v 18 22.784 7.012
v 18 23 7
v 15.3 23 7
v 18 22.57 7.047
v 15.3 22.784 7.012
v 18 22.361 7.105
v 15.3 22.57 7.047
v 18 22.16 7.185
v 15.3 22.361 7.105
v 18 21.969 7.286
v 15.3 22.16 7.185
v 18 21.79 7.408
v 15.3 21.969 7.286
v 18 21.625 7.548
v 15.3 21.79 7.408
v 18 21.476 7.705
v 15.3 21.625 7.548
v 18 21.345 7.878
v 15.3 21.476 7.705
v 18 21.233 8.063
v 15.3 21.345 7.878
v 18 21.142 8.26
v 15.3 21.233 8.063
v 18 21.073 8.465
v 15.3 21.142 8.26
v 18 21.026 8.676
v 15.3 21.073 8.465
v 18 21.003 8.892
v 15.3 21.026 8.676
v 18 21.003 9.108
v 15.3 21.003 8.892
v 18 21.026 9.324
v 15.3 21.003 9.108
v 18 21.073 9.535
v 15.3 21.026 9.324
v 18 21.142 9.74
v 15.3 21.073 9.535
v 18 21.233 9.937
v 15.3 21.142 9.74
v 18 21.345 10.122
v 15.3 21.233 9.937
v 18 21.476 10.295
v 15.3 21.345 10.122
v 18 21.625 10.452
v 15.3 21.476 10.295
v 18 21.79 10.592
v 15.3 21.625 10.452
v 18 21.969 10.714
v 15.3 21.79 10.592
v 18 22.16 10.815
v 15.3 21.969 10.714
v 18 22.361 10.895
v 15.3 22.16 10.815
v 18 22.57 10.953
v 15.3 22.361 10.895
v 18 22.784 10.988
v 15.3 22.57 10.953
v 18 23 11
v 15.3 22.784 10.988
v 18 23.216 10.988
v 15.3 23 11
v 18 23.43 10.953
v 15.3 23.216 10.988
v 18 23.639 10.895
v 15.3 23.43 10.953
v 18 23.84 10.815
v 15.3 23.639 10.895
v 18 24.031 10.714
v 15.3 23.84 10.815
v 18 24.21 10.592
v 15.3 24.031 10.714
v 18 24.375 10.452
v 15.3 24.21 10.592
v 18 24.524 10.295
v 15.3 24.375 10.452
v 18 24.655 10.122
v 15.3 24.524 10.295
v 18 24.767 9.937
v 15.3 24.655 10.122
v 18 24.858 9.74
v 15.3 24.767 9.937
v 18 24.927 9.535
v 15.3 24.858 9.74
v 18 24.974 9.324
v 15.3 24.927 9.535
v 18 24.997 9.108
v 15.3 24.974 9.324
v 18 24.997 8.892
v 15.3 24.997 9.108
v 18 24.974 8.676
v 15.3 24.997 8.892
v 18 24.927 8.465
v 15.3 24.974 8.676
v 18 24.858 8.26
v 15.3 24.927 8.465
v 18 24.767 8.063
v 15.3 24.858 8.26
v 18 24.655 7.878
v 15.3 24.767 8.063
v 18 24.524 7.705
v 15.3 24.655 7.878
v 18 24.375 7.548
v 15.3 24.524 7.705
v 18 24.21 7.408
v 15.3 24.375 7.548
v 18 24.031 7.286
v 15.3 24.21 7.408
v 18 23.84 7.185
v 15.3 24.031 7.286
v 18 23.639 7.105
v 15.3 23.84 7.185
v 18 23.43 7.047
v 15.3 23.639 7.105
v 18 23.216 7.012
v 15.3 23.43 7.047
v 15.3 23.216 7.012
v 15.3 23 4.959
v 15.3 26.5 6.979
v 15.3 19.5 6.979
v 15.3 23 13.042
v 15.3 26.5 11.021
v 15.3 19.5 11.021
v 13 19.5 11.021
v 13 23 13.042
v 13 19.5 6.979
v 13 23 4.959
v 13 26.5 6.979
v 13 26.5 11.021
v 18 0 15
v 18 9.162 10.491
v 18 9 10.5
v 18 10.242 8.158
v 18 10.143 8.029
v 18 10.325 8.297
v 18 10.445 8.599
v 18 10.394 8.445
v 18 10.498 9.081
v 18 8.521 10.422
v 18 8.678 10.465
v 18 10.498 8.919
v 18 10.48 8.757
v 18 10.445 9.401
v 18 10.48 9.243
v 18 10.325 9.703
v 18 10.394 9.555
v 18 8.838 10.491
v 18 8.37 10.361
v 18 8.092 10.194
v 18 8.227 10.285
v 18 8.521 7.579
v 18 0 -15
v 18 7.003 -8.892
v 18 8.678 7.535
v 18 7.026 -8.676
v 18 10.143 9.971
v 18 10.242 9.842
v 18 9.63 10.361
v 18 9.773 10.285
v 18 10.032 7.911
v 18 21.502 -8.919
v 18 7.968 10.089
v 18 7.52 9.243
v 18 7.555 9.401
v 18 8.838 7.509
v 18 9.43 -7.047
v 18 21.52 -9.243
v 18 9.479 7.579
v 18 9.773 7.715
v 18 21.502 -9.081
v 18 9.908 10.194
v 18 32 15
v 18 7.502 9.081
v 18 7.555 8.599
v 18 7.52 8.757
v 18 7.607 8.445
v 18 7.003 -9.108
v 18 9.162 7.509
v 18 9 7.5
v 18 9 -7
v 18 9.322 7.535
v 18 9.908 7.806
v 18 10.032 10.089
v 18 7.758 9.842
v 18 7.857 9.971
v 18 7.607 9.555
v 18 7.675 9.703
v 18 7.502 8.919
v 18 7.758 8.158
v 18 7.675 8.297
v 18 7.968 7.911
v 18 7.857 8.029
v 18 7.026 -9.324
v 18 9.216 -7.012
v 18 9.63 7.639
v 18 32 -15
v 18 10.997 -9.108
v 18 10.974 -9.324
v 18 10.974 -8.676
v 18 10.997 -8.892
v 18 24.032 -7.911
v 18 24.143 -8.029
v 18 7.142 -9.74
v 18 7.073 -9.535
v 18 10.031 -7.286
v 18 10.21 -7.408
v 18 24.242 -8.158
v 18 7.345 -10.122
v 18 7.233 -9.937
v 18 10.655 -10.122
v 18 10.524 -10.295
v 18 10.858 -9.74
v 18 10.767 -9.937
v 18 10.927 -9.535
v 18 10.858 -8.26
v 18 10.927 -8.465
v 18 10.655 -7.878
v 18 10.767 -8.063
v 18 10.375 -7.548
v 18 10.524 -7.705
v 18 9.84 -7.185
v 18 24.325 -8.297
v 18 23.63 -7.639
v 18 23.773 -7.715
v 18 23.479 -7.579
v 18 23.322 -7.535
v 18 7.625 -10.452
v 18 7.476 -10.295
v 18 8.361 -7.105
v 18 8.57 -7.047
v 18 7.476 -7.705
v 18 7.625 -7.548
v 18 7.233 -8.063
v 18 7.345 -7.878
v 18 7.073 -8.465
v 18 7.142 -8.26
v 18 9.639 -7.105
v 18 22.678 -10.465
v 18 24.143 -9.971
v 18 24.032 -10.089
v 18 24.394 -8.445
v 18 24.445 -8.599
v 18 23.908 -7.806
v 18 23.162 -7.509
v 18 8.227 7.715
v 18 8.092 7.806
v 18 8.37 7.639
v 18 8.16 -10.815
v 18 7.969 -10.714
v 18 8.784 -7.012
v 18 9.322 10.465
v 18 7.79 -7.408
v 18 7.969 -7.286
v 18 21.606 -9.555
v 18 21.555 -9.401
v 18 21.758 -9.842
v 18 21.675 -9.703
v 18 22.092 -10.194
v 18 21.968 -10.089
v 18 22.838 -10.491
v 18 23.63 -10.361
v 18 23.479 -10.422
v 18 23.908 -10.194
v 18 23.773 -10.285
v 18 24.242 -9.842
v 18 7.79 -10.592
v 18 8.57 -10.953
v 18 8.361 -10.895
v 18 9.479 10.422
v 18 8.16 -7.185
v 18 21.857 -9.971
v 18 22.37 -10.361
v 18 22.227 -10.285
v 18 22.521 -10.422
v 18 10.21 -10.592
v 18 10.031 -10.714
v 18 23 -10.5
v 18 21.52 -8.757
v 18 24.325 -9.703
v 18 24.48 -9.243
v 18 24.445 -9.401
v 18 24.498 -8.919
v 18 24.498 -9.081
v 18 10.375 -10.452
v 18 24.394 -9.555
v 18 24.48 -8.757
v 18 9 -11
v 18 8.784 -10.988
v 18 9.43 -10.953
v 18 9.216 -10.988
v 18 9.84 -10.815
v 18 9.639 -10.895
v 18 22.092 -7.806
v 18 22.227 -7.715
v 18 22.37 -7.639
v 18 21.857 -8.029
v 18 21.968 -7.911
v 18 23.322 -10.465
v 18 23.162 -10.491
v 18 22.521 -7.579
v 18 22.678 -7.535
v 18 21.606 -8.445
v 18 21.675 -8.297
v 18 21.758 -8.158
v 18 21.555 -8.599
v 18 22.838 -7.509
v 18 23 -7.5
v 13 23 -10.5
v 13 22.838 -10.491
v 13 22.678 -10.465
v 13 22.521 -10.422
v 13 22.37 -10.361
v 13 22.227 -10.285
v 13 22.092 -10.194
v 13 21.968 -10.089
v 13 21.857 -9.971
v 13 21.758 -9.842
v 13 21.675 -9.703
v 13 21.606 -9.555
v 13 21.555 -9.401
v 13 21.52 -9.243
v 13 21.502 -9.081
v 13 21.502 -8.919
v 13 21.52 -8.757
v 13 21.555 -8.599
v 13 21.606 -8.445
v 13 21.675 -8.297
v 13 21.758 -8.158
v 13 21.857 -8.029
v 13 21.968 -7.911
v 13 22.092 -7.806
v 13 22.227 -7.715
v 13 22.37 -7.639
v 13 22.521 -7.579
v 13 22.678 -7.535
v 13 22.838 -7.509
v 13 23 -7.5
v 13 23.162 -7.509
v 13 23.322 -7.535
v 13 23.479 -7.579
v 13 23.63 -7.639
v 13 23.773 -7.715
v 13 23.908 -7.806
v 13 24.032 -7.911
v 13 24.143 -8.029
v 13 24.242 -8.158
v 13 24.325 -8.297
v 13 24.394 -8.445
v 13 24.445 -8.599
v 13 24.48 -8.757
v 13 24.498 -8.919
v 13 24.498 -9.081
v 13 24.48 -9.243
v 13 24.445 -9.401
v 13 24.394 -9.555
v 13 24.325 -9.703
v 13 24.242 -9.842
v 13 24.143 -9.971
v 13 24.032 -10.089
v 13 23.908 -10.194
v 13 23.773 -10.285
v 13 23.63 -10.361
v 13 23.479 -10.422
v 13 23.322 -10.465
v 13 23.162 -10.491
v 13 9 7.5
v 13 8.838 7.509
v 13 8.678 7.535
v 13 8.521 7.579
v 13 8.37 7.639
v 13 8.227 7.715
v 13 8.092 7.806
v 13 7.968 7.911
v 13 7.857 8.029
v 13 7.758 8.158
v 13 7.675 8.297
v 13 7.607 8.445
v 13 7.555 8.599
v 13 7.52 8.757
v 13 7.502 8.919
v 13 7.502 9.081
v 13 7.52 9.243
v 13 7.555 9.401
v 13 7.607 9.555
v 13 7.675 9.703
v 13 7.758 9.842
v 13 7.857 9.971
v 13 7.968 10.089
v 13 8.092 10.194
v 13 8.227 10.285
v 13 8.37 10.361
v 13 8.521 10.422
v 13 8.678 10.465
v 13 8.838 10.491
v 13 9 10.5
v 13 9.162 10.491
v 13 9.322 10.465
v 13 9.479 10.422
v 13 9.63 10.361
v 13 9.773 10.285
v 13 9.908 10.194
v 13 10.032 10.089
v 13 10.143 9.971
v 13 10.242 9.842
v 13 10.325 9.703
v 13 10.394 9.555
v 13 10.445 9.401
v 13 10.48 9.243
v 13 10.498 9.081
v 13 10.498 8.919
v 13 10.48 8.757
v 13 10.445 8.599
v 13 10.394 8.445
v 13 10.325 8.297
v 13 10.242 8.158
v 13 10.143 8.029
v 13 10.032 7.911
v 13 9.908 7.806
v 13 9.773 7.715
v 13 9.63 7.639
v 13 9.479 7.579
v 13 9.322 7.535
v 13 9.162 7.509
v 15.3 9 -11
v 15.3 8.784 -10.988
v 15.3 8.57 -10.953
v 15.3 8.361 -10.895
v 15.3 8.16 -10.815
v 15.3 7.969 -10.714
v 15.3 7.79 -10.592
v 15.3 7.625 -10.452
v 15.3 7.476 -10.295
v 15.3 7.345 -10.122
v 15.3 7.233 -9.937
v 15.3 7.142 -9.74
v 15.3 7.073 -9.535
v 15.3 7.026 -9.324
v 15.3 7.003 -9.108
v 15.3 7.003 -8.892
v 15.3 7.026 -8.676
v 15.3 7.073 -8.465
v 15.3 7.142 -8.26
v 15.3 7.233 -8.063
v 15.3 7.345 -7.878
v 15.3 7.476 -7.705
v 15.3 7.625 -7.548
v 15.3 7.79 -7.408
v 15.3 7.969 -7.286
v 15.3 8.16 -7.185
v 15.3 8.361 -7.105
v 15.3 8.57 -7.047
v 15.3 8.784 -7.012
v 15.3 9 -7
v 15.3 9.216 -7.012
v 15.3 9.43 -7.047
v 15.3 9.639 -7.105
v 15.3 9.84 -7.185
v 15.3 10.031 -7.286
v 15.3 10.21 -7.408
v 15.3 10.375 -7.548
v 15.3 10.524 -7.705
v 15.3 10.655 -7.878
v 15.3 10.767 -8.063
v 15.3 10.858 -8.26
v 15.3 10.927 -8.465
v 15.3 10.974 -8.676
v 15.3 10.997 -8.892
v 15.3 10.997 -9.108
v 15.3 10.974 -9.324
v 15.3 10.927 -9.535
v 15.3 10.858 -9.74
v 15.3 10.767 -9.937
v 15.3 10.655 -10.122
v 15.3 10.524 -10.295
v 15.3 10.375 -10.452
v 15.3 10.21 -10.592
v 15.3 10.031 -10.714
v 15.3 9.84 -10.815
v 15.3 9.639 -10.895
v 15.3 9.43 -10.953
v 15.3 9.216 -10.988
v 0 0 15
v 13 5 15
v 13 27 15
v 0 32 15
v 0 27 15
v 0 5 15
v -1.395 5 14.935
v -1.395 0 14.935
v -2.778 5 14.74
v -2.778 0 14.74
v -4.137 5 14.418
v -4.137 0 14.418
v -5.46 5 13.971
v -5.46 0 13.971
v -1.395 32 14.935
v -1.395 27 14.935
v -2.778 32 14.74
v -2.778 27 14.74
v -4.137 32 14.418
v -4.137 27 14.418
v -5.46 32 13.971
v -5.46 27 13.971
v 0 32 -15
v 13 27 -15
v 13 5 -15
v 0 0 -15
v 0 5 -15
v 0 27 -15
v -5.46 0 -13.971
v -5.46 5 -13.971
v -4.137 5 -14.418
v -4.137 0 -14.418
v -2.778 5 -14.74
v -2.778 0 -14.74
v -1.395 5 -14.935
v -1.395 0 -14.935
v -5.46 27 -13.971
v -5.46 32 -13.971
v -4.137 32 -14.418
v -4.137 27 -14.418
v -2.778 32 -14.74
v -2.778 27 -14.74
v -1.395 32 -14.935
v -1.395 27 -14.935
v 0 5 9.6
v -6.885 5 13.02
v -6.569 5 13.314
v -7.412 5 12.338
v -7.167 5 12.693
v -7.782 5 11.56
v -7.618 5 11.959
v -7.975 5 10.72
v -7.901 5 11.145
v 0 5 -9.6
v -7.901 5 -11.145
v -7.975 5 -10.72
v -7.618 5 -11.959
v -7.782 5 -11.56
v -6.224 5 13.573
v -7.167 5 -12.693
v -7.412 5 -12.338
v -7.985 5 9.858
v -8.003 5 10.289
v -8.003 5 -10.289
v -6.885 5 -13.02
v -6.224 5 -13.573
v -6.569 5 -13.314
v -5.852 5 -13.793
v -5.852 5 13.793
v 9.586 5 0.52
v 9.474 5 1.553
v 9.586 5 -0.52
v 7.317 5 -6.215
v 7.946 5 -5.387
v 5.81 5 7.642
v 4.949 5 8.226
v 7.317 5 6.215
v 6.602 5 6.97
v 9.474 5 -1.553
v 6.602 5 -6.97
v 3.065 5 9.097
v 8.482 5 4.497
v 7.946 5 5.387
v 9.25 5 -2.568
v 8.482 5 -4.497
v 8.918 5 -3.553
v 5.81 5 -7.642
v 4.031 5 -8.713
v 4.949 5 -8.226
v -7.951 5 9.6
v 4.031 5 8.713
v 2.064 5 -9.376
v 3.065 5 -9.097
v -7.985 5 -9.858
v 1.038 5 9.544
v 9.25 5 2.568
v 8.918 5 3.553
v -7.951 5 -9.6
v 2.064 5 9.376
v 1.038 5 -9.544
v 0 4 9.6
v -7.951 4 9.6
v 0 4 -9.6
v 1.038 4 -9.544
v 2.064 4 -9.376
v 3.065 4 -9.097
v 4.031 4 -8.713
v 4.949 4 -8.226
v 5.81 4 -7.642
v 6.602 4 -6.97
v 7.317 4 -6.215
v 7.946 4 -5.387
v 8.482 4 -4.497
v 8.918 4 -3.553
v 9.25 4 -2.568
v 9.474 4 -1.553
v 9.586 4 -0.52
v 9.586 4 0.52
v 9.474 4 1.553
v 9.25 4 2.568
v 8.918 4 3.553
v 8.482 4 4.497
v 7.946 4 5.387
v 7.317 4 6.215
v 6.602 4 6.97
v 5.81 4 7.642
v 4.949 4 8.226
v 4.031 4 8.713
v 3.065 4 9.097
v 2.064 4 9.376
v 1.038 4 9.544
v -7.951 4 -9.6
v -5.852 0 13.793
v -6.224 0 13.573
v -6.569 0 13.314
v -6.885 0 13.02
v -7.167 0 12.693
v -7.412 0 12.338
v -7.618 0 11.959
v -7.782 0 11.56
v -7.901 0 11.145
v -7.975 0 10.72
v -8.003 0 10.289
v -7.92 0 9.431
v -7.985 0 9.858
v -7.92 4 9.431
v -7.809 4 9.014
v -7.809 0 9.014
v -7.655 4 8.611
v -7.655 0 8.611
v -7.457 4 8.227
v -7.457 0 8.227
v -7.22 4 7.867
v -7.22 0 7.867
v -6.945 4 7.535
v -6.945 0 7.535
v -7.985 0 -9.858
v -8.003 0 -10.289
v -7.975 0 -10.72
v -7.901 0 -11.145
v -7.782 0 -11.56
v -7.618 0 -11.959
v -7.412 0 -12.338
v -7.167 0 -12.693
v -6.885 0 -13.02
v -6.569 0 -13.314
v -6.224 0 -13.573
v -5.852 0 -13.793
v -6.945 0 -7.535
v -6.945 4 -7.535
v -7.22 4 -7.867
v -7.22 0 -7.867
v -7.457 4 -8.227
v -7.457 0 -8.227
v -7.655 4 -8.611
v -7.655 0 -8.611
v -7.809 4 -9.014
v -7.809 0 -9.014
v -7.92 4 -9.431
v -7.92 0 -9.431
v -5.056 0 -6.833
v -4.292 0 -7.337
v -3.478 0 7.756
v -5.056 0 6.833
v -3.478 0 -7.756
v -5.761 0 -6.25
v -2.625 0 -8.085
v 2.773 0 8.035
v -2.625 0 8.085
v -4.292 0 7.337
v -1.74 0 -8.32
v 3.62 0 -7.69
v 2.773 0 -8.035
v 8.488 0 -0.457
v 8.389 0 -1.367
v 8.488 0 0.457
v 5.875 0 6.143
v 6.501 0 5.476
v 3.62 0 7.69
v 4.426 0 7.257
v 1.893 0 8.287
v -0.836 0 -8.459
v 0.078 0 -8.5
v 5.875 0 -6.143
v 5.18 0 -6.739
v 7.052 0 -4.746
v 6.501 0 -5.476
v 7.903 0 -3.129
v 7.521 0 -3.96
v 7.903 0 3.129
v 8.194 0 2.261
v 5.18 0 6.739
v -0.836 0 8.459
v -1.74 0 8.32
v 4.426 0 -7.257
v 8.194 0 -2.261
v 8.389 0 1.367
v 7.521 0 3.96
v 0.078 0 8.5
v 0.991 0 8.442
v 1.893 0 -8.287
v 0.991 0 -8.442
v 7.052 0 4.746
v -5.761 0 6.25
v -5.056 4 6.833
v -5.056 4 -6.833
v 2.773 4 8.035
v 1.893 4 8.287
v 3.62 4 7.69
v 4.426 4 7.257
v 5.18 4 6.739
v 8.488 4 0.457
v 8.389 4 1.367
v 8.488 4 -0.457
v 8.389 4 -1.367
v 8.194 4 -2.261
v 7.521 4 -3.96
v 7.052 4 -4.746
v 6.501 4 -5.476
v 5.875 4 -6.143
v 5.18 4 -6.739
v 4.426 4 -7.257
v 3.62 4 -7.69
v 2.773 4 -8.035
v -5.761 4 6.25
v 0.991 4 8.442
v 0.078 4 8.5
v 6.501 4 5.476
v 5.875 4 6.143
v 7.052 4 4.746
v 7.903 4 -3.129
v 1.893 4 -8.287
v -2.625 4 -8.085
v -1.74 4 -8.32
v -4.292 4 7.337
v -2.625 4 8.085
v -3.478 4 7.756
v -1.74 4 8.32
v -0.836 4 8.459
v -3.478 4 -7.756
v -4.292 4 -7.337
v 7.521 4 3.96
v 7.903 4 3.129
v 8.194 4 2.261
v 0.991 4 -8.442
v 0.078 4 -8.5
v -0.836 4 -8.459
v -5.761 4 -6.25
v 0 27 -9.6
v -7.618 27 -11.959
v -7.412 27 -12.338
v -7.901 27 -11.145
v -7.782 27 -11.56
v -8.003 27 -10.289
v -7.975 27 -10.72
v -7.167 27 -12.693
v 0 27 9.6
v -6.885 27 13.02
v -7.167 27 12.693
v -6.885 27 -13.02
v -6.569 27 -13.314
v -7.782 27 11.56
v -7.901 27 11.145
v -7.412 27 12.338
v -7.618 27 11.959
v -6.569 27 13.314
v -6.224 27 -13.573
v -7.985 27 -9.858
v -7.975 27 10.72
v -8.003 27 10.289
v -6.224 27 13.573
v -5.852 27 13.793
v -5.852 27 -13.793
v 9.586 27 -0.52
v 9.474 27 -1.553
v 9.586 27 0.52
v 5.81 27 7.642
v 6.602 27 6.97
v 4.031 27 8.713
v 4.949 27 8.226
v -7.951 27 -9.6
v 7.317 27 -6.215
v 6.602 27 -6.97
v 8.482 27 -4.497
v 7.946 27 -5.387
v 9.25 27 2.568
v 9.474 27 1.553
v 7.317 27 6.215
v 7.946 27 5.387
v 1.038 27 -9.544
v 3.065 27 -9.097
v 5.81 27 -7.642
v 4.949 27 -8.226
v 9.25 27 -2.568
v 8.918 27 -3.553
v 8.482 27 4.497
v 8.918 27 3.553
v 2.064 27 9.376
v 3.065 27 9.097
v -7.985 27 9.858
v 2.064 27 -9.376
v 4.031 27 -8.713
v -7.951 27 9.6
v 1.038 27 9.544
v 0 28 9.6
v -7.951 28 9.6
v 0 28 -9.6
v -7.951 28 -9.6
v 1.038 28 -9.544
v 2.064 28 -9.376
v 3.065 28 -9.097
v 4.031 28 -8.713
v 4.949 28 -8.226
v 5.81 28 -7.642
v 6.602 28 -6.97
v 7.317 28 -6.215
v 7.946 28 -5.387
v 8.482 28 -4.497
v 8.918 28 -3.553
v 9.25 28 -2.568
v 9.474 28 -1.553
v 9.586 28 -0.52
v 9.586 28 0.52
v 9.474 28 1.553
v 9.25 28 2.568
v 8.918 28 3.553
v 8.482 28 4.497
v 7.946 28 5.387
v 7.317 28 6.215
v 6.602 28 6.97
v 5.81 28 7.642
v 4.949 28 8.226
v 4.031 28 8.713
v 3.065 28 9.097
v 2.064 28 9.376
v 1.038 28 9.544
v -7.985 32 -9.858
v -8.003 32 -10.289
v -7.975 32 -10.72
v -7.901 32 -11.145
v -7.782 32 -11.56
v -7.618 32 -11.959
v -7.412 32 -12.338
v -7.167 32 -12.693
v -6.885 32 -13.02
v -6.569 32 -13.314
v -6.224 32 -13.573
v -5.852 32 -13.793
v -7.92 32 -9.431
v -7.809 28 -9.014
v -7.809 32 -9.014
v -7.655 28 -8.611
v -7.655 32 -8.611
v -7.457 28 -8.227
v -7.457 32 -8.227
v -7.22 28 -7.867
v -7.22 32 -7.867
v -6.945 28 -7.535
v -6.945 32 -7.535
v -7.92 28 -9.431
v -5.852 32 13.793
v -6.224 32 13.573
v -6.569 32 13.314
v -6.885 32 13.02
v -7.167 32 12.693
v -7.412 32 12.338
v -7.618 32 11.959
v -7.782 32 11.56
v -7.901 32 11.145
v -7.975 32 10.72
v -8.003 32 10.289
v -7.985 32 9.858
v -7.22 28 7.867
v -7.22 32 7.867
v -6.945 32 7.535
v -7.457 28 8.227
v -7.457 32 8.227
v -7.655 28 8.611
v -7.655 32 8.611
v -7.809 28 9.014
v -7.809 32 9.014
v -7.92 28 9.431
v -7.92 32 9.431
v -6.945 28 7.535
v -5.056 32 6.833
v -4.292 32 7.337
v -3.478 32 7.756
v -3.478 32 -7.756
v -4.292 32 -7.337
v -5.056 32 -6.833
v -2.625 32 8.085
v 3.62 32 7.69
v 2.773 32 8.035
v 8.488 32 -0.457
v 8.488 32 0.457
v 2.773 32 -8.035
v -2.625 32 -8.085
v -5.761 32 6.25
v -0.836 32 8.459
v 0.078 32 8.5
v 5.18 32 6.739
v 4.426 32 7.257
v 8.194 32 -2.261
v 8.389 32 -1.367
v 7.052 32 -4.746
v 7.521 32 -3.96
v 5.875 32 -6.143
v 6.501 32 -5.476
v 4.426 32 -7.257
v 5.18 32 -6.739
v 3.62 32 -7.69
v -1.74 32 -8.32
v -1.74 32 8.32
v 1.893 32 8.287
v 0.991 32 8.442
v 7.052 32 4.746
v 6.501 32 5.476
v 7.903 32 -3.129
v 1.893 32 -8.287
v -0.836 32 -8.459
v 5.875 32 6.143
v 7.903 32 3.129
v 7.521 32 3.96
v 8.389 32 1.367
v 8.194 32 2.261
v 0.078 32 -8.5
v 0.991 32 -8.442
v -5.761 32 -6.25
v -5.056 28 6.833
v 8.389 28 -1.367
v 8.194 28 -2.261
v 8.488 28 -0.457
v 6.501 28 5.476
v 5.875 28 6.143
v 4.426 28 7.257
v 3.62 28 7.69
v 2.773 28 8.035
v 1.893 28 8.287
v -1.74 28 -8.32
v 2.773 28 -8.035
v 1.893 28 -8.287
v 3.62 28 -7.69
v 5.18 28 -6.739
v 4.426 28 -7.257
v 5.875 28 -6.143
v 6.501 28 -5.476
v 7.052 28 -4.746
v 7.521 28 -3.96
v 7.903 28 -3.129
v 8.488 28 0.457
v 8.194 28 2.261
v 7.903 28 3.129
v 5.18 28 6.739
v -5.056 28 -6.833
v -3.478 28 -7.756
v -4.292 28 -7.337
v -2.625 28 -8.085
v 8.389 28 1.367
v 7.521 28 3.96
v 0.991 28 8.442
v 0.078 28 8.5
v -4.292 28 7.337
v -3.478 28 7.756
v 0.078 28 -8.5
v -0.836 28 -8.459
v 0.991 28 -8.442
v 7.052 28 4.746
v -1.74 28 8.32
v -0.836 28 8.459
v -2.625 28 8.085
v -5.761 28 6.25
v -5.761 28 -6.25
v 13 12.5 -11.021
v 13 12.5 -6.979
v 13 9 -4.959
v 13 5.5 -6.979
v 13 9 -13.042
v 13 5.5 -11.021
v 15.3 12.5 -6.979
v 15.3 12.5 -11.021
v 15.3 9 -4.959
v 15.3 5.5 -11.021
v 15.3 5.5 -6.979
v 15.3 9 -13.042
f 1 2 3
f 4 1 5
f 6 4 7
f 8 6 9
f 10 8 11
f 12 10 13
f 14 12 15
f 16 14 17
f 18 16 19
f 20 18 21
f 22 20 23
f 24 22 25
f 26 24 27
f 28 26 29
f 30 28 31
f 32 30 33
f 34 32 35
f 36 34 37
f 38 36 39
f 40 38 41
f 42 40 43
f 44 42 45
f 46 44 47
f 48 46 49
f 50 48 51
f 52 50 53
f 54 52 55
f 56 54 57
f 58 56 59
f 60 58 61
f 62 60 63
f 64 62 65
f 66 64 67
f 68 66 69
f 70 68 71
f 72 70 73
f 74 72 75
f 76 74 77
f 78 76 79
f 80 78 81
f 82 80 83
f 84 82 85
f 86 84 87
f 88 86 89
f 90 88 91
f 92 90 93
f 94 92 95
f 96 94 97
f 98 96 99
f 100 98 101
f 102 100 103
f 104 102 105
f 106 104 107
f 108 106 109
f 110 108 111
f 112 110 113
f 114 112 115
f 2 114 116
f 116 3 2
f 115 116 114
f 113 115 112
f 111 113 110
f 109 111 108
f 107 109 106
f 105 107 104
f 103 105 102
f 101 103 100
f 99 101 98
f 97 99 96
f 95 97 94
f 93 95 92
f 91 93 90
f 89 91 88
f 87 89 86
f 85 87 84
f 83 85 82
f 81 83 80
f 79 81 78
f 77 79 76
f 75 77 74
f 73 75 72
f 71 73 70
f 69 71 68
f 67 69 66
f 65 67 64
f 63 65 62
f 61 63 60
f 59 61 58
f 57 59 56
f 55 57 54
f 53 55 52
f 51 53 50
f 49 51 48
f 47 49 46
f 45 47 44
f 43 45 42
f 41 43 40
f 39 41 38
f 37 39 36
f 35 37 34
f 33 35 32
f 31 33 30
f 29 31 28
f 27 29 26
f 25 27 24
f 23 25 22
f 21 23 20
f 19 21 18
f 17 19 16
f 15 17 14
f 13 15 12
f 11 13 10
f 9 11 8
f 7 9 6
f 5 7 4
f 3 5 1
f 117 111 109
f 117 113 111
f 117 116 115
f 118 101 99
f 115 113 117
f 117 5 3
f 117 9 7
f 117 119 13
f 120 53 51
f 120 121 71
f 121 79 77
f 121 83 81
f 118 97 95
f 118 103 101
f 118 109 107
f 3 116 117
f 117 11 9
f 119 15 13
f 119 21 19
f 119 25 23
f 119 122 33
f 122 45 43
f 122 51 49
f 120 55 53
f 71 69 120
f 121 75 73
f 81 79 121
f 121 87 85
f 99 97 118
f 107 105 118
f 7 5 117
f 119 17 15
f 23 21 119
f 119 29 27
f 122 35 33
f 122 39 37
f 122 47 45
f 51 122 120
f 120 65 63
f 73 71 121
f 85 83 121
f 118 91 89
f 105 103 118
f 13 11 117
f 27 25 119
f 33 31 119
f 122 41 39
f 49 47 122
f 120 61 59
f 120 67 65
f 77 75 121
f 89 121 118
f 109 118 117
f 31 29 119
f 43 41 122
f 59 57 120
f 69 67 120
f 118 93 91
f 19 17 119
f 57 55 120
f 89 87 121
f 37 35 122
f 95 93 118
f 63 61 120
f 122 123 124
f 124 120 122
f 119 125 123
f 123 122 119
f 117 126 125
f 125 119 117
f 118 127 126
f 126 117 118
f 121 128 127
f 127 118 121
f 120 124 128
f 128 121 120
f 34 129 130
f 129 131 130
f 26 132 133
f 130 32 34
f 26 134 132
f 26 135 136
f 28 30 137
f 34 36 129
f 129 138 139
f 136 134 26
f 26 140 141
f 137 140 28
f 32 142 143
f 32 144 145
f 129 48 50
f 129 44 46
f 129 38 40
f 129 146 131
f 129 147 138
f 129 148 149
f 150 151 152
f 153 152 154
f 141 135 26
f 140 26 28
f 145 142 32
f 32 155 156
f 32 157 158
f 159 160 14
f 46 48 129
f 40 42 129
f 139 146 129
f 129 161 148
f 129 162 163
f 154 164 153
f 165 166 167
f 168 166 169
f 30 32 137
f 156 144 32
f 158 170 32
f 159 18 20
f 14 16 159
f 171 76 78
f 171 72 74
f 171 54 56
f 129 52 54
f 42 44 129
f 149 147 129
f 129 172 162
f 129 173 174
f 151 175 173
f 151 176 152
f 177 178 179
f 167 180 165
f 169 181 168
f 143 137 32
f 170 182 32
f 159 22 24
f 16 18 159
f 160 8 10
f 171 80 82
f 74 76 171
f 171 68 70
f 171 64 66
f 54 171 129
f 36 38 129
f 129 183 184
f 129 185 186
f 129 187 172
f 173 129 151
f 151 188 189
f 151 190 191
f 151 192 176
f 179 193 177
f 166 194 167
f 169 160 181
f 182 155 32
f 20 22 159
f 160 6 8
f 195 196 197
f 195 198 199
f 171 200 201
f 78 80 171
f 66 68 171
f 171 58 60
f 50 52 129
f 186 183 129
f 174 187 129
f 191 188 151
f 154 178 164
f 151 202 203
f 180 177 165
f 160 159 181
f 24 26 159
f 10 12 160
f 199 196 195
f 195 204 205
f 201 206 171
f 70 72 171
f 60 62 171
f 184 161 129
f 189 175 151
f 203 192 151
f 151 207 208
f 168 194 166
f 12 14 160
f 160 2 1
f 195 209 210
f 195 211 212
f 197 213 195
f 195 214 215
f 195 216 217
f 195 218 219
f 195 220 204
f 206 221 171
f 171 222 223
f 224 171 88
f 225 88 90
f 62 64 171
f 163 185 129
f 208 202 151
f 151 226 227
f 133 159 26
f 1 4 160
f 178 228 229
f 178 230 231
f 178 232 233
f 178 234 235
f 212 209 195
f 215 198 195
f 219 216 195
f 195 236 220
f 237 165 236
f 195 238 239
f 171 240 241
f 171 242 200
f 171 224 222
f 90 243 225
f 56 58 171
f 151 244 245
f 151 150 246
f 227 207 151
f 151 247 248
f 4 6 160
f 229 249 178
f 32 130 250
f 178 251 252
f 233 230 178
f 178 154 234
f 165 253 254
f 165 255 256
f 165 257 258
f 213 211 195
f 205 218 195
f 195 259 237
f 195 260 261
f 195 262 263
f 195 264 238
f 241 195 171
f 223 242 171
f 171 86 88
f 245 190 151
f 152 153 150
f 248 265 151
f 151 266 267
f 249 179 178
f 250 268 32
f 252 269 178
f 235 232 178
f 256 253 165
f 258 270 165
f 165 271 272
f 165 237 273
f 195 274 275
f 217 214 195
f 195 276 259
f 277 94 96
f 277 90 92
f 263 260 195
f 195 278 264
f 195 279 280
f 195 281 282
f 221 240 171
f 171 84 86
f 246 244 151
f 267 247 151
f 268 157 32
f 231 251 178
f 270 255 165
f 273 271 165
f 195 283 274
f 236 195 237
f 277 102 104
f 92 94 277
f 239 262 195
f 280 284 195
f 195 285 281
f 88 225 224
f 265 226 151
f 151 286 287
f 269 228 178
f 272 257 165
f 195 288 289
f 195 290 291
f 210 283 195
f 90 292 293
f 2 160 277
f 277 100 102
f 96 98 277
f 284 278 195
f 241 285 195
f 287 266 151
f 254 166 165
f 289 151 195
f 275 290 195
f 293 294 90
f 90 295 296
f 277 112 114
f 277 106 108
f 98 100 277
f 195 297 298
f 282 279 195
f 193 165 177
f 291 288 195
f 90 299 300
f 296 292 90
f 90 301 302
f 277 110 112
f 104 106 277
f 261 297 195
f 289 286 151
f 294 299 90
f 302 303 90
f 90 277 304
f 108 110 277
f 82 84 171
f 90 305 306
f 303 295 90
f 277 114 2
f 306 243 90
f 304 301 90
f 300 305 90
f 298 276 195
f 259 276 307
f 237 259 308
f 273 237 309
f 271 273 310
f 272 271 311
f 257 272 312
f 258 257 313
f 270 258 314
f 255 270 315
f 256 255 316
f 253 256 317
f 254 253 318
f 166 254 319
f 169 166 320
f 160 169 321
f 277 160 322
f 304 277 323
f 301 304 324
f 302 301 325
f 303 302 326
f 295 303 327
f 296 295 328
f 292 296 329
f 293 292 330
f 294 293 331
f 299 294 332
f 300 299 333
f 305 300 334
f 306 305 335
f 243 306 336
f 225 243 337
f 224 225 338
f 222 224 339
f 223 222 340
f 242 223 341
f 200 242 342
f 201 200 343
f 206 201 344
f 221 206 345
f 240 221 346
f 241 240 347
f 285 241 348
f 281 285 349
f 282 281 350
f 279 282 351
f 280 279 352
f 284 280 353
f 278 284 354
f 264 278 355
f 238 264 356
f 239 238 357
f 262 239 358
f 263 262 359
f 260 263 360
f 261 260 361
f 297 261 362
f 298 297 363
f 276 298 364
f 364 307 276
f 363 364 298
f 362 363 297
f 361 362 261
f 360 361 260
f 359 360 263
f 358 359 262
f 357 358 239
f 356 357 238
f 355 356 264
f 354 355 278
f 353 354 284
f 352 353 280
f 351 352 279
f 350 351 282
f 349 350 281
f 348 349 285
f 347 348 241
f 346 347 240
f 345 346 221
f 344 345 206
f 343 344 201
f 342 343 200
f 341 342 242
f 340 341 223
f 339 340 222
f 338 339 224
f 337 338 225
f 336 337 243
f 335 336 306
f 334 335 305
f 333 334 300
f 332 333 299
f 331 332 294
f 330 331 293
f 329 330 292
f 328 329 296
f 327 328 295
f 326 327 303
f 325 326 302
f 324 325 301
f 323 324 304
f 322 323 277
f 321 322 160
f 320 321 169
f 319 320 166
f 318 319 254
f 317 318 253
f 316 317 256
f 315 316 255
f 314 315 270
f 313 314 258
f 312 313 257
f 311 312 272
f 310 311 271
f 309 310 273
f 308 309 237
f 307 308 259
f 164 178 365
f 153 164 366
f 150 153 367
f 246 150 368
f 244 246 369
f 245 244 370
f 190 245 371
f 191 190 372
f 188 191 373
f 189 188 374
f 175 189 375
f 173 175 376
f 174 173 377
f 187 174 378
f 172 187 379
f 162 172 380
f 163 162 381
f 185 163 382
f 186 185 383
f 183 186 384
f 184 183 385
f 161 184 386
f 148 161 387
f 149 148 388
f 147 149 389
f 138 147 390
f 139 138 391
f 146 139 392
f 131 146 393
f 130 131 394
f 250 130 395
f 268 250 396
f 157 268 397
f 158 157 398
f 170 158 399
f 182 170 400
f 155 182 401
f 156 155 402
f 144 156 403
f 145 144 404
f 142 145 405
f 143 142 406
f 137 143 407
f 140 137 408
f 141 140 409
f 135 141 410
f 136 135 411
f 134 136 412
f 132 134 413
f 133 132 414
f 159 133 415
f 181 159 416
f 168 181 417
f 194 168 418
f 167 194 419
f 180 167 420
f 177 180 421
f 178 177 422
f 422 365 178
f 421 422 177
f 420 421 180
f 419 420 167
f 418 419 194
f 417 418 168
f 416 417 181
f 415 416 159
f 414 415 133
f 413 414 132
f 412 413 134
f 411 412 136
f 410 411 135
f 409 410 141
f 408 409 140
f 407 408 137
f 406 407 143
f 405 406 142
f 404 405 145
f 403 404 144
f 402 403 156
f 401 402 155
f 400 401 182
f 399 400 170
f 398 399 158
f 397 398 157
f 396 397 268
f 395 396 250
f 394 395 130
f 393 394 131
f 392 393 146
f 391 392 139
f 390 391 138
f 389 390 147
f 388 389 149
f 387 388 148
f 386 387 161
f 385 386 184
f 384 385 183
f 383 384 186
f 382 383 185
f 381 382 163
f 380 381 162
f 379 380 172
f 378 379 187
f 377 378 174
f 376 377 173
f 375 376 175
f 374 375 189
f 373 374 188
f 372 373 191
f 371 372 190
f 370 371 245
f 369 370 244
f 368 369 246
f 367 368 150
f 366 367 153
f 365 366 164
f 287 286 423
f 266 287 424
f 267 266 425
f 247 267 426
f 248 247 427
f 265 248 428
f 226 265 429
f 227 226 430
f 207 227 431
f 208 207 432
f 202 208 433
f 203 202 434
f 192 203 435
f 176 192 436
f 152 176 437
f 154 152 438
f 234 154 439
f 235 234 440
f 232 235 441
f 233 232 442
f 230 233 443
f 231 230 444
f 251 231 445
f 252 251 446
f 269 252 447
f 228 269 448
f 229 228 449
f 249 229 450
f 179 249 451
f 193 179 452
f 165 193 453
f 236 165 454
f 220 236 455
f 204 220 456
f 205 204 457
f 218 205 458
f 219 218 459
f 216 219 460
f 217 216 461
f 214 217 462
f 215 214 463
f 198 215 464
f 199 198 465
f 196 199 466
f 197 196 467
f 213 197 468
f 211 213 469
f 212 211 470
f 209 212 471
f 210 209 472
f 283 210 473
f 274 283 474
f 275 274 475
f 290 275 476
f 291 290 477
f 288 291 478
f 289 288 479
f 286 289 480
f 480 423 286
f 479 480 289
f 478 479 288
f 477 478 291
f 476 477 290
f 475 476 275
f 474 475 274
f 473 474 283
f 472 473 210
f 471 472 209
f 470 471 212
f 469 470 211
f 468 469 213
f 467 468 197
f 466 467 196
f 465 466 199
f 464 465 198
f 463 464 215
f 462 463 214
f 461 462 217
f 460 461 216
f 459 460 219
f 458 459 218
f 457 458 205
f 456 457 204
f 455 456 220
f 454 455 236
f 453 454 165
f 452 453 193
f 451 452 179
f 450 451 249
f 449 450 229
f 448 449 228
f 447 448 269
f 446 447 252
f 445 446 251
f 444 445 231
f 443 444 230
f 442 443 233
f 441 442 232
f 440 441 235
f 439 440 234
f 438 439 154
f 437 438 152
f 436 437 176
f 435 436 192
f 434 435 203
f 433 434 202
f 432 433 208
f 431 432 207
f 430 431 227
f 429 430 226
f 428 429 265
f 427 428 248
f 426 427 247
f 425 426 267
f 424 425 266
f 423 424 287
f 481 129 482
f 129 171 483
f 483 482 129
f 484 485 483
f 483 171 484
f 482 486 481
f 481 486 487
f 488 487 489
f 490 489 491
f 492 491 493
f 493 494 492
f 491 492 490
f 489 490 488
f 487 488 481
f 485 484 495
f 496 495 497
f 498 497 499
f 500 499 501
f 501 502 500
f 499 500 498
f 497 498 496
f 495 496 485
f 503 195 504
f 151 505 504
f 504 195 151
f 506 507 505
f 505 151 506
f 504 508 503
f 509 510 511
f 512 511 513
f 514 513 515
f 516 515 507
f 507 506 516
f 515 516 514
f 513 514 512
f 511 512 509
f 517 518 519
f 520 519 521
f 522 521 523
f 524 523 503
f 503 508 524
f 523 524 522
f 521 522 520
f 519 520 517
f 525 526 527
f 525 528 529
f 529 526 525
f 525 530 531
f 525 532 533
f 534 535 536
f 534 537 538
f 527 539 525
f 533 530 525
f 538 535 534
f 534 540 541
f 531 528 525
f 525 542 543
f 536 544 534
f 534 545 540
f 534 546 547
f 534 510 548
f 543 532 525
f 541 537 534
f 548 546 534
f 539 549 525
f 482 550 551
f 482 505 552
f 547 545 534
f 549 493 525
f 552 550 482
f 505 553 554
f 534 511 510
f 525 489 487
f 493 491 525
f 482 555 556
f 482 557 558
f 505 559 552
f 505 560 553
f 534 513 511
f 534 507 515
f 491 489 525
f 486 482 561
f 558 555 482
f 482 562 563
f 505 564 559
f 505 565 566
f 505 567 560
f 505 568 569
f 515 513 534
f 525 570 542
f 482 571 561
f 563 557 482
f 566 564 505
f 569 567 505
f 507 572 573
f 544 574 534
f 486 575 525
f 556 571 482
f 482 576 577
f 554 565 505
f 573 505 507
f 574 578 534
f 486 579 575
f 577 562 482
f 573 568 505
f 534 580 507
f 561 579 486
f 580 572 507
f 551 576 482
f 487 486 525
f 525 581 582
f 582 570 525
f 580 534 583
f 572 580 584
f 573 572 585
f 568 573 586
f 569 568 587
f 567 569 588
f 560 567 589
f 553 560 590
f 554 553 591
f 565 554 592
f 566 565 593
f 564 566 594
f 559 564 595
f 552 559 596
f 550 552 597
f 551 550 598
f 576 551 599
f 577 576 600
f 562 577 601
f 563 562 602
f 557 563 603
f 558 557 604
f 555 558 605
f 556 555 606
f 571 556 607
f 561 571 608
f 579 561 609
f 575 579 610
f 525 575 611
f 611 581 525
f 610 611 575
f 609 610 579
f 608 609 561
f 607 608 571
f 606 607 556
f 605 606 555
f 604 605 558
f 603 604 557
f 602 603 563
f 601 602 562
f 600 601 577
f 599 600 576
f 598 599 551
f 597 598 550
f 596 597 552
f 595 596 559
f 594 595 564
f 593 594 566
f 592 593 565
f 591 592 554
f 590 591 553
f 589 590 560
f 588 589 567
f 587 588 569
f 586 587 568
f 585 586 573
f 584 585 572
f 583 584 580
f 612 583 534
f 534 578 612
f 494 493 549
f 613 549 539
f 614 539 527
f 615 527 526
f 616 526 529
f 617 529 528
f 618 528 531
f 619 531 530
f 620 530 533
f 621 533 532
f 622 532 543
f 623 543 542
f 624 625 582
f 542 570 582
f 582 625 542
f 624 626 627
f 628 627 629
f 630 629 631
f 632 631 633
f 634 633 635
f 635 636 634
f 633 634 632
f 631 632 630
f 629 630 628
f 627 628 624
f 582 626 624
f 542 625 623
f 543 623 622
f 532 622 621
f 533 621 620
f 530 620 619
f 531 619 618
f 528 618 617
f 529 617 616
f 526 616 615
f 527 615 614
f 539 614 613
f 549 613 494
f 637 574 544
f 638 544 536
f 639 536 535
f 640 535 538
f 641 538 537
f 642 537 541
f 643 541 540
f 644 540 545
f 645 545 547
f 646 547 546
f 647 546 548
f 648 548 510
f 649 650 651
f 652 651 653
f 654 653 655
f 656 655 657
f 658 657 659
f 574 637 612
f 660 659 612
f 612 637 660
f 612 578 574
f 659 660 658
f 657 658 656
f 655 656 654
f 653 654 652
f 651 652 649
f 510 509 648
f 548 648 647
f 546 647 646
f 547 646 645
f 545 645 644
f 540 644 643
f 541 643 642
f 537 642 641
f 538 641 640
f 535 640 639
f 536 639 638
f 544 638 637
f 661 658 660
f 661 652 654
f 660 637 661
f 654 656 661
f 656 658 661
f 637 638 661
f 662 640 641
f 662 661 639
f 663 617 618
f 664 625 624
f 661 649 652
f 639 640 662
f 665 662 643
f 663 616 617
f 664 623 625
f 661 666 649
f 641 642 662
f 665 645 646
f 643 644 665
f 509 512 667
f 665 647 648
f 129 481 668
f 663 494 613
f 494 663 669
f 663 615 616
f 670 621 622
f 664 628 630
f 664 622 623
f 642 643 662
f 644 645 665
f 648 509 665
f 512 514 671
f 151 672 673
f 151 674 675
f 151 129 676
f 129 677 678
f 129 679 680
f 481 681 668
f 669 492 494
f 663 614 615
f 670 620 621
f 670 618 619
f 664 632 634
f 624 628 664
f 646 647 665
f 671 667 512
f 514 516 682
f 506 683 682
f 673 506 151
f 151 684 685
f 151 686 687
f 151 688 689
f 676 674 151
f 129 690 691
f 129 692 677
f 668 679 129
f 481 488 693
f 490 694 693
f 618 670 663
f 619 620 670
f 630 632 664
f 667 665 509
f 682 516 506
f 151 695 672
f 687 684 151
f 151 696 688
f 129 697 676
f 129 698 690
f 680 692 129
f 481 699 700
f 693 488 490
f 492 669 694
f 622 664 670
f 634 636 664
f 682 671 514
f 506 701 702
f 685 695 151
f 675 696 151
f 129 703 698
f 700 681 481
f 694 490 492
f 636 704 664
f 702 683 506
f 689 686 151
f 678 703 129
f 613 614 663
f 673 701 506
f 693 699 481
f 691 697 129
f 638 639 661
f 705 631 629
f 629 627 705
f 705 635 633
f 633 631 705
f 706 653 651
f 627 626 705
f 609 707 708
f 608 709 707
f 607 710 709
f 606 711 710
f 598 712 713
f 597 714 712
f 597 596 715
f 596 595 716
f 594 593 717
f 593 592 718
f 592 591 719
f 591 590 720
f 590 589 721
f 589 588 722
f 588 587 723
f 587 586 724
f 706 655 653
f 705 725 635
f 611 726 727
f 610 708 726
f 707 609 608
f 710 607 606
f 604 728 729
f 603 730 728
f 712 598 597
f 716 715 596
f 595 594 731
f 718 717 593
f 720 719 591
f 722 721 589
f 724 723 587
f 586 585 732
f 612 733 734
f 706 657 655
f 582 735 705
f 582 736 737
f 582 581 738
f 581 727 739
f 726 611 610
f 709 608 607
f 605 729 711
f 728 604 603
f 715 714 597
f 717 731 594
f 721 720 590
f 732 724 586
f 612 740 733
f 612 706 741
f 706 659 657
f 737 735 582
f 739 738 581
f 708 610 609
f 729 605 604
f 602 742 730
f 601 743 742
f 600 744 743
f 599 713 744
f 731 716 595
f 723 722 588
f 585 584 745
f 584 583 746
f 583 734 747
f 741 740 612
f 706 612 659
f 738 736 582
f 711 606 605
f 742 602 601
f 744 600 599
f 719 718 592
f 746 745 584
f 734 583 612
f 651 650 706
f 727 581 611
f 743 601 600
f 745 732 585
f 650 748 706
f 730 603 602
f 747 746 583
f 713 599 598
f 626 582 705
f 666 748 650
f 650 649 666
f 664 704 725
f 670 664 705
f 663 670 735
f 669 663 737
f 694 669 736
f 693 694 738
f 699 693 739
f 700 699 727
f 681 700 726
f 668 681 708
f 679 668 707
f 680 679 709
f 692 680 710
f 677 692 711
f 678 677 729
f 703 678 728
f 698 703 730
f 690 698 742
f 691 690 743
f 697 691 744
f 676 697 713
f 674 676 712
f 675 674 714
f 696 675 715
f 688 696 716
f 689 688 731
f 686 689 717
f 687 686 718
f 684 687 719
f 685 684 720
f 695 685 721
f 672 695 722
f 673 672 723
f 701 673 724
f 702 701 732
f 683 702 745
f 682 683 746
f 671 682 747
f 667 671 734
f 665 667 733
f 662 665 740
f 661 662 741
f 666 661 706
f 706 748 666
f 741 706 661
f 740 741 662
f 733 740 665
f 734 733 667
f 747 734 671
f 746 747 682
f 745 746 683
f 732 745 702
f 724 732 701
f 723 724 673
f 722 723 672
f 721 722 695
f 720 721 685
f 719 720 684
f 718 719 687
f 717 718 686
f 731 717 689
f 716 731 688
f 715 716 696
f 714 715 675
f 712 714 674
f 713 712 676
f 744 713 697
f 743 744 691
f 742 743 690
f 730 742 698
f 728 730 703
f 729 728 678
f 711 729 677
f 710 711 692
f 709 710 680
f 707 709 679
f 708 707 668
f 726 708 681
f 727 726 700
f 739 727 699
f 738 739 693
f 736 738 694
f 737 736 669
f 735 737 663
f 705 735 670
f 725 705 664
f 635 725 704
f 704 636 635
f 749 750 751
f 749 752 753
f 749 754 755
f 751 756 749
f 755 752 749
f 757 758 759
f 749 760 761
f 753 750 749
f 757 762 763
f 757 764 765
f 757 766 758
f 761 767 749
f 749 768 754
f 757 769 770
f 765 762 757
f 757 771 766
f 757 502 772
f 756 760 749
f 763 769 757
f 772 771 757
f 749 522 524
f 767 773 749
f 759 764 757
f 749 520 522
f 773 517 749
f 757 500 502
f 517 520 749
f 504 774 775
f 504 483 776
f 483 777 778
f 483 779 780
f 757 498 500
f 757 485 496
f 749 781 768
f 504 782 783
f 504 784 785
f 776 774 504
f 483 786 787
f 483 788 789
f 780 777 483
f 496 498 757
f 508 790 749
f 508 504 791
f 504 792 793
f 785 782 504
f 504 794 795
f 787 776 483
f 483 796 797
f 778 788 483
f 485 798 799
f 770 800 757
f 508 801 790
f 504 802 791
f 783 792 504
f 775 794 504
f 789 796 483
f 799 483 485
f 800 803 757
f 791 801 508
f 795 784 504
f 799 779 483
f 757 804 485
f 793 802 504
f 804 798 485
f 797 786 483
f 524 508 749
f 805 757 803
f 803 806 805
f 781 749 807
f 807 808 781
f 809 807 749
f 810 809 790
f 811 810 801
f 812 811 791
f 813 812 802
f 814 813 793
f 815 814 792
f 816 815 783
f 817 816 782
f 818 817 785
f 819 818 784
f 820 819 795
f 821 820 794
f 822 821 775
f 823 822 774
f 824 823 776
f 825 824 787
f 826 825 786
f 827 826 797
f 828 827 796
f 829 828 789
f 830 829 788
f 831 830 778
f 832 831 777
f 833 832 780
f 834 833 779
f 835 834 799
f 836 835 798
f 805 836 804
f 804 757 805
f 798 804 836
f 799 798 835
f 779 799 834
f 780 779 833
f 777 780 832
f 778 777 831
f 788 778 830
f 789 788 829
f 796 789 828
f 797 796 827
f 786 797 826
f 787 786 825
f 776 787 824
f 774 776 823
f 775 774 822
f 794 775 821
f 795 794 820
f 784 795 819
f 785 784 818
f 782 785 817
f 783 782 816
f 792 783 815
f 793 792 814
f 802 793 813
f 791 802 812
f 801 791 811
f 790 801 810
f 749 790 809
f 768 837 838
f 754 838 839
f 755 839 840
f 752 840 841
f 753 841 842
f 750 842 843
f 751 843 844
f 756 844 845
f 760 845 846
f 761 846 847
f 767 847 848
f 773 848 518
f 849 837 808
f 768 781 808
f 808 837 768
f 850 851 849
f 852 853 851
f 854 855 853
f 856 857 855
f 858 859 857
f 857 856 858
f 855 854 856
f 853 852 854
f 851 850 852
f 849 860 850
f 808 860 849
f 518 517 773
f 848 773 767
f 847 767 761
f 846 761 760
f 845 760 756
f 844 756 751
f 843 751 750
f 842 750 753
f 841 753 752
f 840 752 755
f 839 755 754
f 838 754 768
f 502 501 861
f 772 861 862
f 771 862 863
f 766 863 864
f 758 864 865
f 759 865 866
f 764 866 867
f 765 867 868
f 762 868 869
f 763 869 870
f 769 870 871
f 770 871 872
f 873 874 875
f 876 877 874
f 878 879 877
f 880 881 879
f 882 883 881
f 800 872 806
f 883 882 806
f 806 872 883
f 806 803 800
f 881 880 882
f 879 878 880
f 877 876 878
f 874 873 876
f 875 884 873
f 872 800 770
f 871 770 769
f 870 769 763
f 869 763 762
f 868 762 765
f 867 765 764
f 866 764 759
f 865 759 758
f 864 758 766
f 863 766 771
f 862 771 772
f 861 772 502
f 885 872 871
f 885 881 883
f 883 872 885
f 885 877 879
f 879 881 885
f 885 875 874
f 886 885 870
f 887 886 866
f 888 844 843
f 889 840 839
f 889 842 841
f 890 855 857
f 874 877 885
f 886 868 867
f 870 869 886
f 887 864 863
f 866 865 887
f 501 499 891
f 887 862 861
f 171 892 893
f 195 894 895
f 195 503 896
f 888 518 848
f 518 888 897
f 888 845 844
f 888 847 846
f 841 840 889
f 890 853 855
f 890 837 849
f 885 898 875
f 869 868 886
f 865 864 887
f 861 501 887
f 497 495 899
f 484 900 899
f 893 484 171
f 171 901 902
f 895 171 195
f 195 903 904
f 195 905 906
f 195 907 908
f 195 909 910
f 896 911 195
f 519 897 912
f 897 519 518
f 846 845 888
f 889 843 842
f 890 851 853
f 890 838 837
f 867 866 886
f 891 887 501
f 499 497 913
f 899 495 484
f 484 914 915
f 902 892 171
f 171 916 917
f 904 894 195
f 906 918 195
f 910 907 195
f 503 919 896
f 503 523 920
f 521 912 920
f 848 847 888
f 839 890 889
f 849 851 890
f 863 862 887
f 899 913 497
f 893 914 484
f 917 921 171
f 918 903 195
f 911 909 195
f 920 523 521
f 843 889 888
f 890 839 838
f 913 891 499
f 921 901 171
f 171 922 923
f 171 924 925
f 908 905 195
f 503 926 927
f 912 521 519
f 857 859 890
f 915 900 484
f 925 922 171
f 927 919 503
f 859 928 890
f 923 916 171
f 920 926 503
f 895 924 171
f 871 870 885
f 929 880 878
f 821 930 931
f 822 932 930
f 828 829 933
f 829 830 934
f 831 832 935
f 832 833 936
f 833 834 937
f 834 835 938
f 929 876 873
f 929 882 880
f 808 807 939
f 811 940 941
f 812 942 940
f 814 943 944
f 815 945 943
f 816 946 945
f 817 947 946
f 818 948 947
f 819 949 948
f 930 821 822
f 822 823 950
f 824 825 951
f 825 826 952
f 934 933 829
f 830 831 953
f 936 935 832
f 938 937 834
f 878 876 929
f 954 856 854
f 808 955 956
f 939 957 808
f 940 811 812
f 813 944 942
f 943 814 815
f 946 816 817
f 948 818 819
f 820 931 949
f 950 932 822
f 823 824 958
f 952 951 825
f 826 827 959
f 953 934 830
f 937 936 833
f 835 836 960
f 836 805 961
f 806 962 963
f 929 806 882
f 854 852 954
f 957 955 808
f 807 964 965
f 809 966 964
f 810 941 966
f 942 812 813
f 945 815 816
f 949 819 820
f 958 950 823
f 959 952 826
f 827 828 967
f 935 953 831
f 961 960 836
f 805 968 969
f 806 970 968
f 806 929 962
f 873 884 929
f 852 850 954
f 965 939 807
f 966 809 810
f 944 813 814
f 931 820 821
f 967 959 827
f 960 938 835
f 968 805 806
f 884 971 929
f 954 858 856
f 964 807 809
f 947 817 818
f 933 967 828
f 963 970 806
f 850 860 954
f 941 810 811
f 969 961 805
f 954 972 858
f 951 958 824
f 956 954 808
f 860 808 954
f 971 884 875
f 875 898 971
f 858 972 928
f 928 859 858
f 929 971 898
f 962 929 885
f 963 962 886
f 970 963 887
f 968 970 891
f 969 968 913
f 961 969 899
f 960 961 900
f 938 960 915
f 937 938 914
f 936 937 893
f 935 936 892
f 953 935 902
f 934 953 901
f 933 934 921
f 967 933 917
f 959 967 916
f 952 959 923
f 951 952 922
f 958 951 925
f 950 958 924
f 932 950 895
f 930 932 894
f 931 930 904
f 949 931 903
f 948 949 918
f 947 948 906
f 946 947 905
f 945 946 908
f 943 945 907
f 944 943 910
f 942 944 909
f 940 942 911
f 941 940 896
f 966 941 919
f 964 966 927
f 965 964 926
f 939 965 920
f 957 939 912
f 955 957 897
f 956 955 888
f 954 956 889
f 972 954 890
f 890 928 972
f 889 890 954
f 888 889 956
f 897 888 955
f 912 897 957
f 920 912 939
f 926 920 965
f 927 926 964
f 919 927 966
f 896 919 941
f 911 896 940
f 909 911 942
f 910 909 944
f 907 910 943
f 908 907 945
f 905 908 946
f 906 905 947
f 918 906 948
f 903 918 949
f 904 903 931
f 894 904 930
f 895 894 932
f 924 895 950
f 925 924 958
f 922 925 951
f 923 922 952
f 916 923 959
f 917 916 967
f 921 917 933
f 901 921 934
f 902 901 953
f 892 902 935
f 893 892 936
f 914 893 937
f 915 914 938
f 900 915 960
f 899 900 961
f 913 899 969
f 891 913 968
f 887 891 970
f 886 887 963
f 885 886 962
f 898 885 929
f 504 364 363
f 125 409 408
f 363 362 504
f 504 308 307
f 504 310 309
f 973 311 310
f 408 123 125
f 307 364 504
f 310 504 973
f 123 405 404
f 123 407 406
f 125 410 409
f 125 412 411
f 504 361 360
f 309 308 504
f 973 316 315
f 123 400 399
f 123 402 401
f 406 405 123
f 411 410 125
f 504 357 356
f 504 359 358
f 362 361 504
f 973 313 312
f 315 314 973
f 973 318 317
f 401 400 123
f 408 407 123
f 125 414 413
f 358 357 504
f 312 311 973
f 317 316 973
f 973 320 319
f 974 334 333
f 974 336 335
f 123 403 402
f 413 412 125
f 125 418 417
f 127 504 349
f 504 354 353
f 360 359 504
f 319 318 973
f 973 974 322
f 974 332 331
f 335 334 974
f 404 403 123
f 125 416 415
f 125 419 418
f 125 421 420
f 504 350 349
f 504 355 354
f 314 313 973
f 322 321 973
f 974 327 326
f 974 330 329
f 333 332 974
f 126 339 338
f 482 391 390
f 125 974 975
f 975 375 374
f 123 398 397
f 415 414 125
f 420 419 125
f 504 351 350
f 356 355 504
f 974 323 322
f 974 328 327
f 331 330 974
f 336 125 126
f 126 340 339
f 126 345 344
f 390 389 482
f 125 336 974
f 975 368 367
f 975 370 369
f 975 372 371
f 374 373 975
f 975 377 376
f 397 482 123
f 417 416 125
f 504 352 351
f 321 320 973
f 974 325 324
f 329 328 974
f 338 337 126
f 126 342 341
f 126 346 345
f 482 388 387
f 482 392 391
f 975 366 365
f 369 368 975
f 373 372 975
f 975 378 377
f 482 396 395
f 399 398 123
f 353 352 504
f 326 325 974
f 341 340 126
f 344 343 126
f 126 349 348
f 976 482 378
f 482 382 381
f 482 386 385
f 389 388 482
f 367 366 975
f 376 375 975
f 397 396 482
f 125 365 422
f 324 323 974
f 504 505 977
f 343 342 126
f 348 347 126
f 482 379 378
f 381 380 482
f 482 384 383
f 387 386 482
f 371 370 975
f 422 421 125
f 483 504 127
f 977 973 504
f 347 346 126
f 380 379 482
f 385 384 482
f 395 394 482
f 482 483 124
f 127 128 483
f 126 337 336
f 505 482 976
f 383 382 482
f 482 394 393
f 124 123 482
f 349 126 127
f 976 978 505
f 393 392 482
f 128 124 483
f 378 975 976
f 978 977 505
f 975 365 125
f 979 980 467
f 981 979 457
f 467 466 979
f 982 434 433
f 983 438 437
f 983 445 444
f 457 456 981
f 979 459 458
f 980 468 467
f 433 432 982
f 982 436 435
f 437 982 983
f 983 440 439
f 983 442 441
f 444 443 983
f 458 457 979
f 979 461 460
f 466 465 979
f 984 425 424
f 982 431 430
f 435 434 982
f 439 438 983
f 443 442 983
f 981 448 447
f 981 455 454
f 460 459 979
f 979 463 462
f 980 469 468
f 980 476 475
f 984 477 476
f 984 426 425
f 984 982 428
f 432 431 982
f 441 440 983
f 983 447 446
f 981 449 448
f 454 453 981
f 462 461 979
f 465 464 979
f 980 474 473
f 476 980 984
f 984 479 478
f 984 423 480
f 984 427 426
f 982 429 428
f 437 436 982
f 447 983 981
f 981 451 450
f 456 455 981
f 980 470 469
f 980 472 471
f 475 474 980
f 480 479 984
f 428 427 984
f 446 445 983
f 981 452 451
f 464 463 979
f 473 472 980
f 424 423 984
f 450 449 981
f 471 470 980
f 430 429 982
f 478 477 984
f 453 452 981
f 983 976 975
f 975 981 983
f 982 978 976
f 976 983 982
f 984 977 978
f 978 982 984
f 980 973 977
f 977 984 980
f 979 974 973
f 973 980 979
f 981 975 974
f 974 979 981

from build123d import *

# Parameters (mm, degrees)
BOSS_EXTRUDE1_DEPTH = 5
SKETCH3_W           = 5
SKETCH3_H           = 30
BOSS_EXTRUDE3_DEPTH = 22
BOSS_EXTRUDE4_DEPTH = 5
SKETCH5_R           = 1.5
SKETCH5_R_2         = 2
CUT_EXTRUDE1_DEPTH  = 29.166222313
FILLET1_R           = 4
CUT_EXTRUDE2_START  = -1
CUT_EXTRUDE2_DEPTH  = 24
CUT_EXTRUDE3_DEPTH  = 2.3


with BuildPart() as part:
    # Sketch2 → Boss-Extrude1 (new body)
    with BuildSketch(Plane(origin=(0, 0, 0), x_dir=(1, 0, 0), z_dir=(0, 1, 0))):
        with BuildLine():
            Line((18, -15), (18, 15))
            Line((18, 15), (0, 15))
            ThreePointArc((0, 15), (-5.457051563, 13.972136137), (-10.166222313, 11.029411765))
            Line((-10.166222313, 11.029411765), (-5.760859311, 6.25))
            ThreePointArc((-5.760859311, 6.25), (8.5, 0), (-5.760859311, -6.25))
            Line((-5.760859311, -6.25), (-10.166222313, -11.029411765))
            ThreePointArc((-10.166222313, -11.029411765), (-5.457051563, -13.972136137), (0, -15))
            Line((0, -15), (18, -15))
        make_face()
    extrude(amount=BOSS_EXTRUDE1_DEPTH)

    # Sketch3 → Boss-Extrude3 (add)
    with BuildSketch(Plane(origin=(0, 5, 0), x_dir=(1, 0, 0), z_dir=(0, 1, 0))):
        with Locations((15.5, 0)):
            Rectangle(SKETCH3_W, SKETCH3_H)
    extrude(amount=BOSS_EXTRUDE3_DEPTH)

    # Sketch4 → Boss-Extrude4 (add)
    with BuildSketch(Plane(origin=(0, 27, 0), x_dir=(1, 0, 0), z_dir=(0, 1, 0))):
        with BuildLine():
            Line((13, -15), (18, -15))
            Line((18, -15), (18, 15))
            Line((18, 15), (13, 15))
            Line((13, 15), (0, 15))
            ThreePointArc((0, 15), (-5.457051563, 13.972136137), (-10.166222313, 11.029411765))
            Line((-10.166222313, 11.029411765), (-5.760859311, 6.25))
            ThreePointArc((-5.760859311, 6.25), (8.5, 0), (-5.760859311, -6.25))
            Line((-5.760859311, -6.25), (-10.166222313, -11.029411765))
            ThreePointArc((-10.166222313, -11.029411765), (-5.457051563, -13.972136137), (0, -15))
            Line((0, -15), (13, -15))
        make_face()
    extrude(amount=BOSS_EXTRUDE4_DEPTH)

    # Sketch5 → Cut-Extrude1 (cut, through all)
    with BuildSketch(Plane(origin=(18, 0, 0), x_dir=(0, 0, -1), z_dir=(1, 0, 0))):
        with Locations((9, 23)):
            Circle(SKETCH5_R)
        with Locations((-9, 9)):
            Circle(SKETCH5_R)
        with Locations((-9, 23)):
            Circle(SKETCH5_R_2)
        with Locations((9, 9)):
            Circle(SKETCH5_R_2)
    extrude(amount=-CUT_EXTRUDE1_DEPTH, mode=Mode.SUBTRACT)

    # Fillet1
    fillet1_edges = [part.edges().sort_by_distance(p)[0] for p in [
        (-10.166222313, 2.5, 11.029411765),
        (-10.166222313, 2.5, -11.029411765),
        (-10.166222313, 29.5, 11.029411765),
        (-10.166222313, 29.5, -11.029411765),
    ]]
    fillet(fillet1_edges, radius=FILLET1_R)

    # Sketch6 → Cut-Extrude2 (cut)
    with BuildSketch(Plane.XZ.offset(-27).offset(CUT_EXTRUDE2_START)):
        with BuildLine():
            Line((-7.951245646, -9.6), (0, -9.6))
            ThreePointArc((0, -9.6), (-3.492513001, -8.942167128), (-6.506382281, -7.058823529))
            Line((-6.506382281, -7.058823529), (-6.944851968, -7.534522622))
            ThreePointArc((-6.944851968, -7.534522622), (-7.59954211, -8.493446945), (-7.951245646, -9.6))
        make_face()
        with BuildLine():
            ThreePointArc((9.6, 0), (6.788225099, 6.788225099), (0, 9.6))
            ThreePointArc((0, 9.6), (-3.492513001, 8.942167128), (-6.506382281, 7.058823529))
            Line((-6.506382281, 7.058823529), (-5.760859311, 6.25))
            ThreePointArc((-5.760859311, 6.25), (8.5, 0), (-5.760859311, -6.25))
            Line((-5.760859311, -6.25), (-6.506382281, -7.058823529))
            ThreePointArc((-6.506382281, -7.058823529), (-3.492513001, -8.942167128), (0, -9.6))
            ThreePointArc((0, -9.6), (6.788225099, -6.788225099), (9.6, 0))
        make_face()
        with BuildLine():
            Line((-5.760859311, 6.25), (-6.506382281, 7.058823529))
            ThreePointArc((-6.506382281, 7.058823529), (-8.792646641, 3.853487389), (-9.6, 0))
            ThreePointArc((-9.6, 0), (-8.792646641, -3.853487389), (-6.506382281, -7.058823529))
            Line((-6.506382281, -7.058823529), (-5.760859311, -6.25))
            ThreePointArc((-5.760859311, -6.25), (8.5, 0), (-5.760859311, 6.25))
        make_face()
        with BuildLine():
            ThreePointArc((-6.506382281, 7.058823529), (-3.492513001, 8.942167128), (0, 9.6))
            Line((0, 9.6), (-7.951245646, 9.6))
            ThreePointArc((-7.951245646, 9.6), (-7.59954211, 8.493446945), (-6.944851968, 7.534522622))
            Line((-6.944851968, 7.534522622), (-6.506382281, 7.058823529))
        make_face()
    extrude(amount=CUT_EXTRUDE2_DEPTH, mode=Mode.SUBTRACT)

    # Sketch7 → Cut-Extrude3 (cut)
    with BuildSketch(Plane.ZY.offset(-13)):
        Polygon((-4.958548116, 9), (-6.979274058, 12.5), (-11.020725942, 12.5), (-13.041451884, 9), (-11.020725942, 5.5), (-6.979274058, 5.5), align=None)
        Polygon((13.041451884, 23), (11.020725942, 26.5), (6.979274058, 26.5), (4.958548116, 23), (6.979274058, 19.5), (11.020725942, 19.5), align=None)
    extrude(amount=-CUT_EXTRUDE3_DEPTH, mode=Mode.SUBTRACT)


solid = part.part
